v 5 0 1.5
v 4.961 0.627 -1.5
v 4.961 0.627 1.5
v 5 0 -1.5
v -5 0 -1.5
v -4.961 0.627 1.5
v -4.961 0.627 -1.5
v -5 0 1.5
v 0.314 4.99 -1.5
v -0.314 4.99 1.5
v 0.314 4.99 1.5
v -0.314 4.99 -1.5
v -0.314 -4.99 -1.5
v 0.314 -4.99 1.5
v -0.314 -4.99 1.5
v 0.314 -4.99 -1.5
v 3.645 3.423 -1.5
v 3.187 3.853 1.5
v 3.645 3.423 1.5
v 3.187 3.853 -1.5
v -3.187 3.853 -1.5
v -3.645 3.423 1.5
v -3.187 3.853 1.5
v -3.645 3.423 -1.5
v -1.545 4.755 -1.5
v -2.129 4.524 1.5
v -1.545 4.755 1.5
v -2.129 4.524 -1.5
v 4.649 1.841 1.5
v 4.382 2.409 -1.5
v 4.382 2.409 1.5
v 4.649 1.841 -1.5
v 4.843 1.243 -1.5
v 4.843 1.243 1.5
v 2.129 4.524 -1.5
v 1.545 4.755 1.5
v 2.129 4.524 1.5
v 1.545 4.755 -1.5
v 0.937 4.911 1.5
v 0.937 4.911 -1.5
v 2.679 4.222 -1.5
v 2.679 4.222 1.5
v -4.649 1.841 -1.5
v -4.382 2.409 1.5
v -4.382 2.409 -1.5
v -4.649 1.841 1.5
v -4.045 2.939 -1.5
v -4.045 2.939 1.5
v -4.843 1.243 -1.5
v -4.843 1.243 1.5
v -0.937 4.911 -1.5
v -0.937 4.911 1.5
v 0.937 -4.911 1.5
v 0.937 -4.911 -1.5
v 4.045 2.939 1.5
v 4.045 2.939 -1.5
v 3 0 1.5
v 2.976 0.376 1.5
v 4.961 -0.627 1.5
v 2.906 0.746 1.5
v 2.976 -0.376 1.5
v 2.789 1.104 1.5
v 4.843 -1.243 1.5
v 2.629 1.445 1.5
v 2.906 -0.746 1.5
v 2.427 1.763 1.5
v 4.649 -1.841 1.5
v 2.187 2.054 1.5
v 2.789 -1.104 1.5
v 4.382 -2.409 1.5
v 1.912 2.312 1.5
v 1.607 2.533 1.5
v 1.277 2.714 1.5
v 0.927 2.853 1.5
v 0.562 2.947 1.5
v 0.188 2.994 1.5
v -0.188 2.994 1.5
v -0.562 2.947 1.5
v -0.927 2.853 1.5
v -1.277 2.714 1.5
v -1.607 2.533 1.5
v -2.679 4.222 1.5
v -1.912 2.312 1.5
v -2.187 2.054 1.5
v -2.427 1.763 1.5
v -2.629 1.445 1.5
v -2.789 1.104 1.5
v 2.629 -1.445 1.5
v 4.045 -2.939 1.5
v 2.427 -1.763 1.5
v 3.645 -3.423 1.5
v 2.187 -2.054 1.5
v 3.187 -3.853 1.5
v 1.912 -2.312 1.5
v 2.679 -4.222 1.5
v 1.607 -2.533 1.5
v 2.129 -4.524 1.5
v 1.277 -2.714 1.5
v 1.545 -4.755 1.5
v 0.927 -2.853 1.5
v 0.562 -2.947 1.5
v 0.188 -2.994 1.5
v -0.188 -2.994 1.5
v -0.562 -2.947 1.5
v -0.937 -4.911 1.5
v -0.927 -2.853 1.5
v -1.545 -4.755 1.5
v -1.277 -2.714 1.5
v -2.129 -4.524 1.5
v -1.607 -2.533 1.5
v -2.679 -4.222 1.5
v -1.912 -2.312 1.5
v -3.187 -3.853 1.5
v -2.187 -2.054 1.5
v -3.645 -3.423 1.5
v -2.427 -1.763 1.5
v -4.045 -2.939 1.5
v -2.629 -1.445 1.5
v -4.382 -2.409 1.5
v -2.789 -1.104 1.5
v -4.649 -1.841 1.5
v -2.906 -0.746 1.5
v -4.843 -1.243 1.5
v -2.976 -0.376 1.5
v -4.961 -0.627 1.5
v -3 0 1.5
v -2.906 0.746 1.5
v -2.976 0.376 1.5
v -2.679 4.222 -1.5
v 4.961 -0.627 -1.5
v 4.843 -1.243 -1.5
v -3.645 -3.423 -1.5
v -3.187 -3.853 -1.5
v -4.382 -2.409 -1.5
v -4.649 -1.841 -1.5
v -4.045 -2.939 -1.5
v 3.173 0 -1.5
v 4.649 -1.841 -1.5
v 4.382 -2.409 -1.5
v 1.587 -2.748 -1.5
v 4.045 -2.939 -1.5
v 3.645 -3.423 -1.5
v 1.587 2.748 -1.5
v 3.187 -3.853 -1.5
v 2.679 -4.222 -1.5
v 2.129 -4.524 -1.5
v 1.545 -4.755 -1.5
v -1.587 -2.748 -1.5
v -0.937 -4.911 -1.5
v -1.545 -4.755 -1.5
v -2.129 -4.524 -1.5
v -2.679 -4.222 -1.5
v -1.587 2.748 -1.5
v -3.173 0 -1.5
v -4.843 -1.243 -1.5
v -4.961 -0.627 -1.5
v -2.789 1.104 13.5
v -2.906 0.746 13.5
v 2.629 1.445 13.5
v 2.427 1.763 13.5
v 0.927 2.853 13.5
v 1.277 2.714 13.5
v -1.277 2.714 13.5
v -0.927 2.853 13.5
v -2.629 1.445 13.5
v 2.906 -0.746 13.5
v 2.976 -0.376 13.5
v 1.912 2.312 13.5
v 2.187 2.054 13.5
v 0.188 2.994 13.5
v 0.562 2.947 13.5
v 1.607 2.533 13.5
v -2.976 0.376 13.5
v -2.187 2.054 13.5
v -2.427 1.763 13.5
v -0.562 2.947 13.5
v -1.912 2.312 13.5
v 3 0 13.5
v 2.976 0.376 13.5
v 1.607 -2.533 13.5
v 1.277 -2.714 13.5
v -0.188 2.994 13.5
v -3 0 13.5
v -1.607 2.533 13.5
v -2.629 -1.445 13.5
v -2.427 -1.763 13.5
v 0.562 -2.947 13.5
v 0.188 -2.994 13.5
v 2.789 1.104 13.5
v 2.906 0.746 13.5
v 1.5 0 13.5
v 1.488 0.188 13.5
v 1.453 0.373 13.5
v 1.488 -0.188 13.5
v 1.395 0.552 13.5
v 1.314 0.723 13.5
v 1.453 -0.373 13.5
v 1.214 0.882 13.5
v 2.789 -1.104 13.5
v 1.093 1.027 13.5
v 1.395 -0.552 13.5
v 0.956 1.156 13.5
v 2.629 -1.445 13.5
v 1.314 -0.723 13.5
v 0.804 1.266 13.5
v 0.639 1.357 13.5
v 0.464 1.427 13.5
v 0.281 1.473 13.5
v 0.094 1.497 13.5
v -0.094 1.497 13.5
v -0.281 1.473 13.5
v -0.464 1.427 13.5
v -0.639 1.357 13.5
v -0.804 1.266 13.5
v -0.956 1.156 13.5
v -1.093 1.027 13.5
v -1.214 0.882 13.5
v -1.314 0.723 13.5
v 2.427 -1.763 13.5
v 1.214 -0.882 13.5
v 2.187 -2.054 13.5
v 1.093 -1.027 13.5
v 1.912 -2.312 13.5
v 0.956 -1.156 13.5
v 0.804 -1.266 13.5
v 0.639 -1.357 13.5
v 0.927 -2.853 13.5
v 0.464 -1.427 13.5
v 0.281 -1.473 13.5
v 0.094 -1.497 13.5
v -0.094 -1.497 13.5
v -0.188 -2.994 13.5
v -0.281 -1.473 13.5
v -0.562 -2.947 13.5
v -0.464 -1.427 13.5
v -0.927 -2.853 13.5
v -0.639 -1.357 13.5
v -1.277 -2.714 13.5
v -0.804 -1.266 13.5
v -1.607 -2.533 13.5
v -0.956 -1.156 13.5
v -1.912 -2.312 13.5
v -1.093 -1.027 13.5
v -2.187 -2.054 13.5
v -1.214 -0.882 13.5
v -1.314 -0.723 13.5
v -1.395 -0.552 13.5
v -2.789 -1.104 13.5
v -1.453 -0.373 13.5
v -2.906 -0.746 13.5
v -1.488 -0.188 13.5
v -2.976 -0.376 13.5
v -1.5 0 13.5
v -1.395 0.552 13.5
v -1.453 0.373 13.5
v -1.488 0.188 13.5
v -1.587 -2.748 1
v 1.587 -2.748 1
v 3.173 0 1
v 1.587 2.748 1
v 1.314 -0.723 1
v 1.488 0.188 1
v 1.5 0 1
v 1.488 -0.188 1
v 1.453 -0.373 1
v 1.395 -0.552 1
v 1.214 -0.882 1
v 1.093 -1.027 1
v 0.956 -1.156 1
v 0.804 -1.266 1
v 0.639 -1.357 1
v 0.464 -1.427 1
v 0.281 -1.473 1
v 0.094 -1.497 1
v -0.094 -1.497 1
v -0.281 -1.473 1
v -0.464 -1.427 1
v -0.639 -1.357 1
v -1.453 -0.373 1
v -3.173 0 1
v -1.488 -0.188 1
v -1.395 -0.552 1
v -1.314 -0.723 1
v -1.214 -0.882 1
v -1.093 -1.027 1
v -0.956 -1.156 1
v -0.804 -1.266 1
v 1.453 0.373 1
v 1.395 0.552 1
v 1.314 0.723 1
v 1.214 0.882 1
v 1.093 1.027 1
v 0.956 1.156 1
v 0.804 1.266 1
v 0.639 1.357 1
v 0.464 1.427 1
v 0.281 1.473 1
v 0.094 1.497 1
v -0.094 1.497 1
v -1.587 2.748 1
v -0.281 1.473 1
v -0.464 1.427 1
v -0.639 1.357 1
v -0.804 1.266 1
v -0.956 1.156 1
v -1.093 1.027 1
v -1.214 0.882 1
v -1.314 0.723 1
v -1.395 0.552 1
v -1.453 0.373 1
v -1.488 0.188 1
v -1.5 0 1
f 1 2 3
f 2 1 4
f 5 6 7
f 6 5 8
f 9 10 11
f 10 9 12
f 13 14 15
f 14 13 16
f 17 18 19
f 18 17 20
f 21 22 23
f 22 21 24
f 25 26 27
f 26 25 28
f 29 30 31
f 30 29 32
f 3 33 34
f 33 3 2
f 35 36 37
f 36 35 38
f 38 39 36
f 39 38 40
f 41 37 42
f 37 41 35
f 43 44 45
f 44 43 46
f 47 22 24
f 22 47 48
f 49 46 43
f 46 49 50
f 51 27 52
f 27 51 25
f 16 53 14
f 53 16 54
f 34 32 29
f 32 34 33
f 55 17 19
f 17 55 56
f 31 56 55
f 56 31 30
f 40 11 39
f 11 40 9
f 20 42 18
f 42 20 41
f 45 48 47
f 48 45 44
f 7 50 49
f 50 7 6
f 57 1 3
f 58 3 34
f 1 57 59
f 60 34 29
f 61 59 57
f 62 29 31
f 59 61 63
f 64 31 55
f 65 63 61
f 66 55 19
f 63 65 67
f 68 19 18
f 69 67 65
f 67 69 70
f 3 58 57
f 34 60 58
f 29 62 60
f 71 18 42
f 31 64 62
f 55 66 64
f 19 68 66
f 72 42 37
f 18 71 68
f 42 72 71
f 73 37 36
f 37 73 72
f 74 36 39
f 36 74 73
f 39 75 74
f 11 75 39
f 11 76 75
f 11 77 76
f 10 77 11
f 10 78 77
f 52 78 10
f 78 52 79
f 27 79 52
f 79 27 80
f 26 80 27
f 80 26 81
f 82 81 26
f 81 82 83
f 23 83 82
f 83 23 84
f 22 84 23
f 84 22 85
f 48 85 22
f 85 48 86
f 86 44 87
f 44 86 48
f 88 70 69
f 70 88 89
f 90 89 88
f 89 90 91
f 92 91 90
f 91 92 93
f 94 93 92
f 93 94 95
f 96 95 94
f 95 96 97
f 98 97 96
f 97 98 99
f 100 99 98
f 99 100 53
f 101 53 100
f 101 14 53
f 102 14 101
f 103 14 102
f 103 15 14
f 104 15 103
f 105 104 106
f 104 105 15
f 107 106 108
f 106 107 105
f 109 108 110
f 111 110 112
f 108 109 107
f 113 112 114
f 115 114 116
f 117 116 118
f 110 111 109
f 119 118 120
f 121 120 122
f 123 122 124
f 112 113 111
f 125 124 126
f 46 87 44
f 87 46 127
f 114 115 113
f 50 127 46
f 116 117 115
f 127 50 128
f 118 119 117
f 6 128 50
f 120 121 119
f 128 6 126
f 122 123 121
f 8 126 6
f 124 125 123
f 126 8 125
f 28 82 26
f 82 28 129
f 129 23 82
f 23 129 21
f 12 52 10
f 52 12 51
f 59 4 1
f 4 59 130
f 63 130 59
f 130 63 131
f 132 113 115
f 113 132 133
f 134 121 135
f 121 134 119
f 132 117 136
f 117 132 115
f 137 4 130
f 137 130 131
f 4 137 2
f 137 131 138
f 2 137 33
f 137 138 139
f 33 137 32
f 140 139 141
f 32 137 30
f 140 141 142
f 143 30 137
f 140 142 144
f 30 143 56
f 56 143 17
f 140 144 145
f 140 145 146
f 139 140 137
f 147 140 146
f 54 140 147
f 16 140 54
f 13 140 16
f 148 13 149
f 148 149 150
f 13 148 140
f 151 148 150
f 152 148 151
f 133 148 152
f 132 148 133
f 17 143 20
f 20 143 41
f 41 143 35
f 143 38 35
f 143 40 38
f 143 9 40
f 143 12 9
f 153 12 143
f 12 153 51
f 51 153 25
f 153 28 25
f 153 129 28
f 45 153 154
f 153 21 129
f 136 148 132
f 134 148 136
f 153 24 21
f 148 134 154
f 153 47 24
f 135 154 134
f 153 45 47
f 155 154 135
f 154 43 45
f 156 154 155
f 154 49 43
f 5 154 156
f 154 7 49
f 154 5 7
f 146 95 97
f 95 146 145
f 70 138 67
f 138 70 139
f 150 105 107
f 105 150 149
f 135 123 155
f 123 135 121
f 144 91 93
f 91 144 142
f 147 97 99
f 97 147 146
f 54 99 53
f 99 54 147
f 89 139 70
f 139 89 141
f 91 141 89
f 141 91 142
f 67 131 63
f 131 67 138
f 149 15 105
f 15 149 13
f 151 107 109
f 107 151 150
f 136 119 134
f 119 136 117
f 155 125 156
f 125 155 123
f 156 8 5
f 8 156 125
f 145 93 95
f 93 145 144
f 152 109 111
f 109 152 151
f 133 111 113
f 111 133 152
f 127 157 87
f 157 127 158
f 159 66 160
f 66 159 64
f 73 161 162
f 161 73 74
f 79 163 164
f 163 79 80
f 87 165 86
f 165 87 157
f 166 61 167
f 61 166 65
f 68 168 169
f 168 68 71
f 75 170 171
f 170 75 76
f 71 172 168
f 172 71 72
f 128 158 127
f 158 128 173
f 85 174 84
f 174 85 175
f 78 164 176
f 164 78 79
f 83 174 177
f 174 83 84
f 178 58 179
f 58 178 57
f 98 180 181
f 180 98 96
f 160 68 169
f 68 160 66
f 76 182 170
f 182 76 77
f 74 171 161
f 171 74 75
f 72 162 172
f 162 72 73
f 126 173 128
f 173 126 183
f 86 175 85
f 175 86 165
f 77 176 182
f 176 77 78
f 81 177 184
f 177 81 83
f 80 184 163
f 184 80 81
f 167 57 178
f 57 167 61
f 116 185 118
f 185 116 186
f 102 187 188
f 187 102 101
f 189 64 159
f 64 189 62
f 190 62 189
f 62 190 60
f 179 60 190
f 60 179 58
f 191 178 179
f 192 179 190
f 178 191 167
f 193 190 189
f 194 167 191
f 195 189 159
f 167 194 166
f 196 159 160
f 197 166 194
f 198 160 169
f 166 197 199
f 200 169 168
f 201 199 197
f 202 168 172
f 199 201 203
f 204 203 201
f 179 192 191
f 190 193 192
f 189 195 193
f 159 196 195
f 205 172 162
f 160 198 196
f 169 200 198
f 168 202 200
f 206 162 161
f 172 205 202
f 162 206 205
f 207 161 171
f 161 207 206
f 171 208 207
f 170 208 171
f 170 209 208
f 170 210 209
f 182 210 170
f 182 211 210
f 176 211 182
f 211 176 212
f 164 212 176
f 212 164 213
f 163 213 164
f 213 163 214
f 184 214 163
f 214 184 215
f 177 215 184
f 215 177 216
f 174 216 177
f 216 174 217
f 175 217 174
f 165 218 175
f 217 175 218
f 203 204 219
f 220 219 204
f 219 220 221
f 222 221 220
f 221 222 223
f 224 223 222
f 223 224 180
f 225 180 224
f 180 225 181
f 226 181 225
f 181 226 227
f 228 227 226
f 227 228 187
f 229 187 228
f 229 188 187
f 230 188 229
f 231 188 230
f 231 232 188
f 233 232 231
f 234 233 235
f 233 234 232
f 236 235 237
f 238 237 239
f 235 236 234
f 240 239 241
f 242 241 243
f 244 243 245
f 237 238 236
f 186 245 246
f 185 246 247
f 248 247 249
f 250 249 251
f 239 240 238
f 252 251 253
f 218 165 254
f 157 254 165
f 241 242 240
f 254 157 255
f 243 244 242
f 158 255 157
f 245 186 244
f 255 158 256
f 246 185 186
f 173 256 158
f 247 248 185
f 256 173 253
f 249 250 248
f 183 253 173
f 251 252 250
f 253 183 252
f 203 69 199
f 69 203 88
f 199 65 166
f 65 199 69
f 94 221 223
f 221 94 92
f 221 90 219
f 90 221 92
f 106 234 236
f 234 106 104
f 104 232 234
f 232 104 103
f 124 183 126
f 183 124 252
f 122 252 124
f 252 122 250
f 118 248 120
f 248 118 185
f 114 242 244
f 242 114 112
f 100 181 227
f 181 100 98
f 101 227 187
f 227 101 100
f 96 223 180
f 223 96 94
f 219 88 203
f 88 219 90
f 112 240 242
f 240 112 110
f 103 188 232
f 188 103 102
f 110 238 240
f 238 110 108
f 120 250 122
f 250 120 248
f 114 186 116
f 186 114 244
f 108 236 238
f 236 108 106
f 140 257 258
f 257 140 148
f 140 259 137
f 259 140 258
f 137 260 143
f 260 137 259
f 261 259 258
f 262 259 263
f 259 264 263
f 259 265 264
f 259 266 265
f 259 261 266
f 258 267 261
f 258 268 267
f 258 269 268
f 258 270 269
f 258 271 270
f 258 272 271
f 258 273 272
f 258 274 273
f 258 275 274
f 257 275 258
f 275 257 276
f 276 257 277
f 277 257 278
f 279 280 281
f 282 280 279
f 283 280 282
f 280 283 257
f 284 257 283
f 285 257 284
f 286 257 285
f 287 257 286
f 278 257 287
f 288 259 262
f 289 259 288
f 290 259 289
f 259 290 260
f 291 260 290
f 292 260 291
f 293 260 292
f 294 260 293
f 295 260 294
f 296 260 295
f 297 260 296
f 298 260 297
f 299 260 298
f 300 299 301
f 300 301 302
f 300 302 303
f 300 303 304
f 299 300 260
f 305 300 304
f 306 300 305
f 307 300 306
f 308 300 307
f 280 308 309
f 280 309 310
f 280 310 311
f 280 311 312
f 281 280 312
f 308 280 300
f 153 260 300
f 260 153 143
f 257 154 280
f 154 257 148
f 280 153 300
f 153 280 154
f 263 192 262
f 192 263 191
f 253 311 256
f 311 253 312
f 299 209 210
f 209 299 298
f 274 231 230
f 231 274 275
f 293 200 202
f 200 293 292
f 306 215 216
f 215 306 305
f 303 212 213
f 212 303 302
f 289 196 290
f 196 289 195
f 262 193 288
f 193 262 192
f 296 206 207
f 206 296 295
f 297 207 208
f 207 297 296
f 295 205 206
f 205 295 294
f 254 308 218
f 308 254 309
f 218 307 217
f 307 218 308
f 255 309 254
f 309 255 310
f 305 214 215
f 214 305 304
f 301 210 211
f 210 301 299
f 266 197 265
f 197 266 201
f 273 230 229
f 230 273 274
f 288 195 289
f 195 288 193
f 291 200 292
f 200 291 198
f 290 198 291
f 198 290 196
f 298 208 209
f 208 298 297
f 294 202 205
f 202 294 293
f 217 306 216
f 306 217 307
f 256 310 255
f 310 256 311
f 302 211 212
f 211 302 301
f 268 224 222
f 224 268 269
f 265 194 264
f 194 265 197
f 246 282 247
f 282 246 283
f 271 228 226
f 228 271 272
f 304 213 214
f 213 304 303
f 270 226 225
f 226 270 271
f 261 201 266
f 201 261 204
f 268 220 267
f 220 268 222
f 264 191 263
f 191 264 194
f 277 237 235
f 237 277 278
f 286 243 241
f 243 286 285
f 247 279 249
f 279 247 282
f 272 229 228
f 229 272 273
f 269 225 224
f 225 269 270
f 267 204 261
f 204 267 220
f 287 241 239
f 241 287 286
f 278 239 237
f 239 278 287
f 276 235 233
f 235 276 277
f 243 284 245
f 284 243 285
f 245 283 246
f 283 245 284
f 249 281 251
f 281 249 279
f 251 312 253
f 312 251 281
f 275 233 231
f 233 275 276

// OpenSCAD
$fn = 50;


difference() {
	union() {
		translate(v = [0, 0, -1.5000000000]) {
			cylinder(h = 3, r = 5.0000000000);
		}
		translate(v = [0, 0, -1.5000000000]) {
			cylinder(h = 15, r = 3.0000000000);
		}
	}
	union() {
		translate(v = [0, 0, -1.5000000000]) {
			rotate(a = [0, 0, 0]) {
				difference() {
					union() {
						linear_extrude(height = 2.5000000000) {
							polygon(points = [[3.1735000000, 0.0000000000], [1.5867500000, 2.7483316189], [-1.5867500000, 2.7483316189], [-3.1735000000, 0.0000000000], [-1.5867500000, -2.7483316189], [1.5867500000, -2.7483316189]]);
						}
					}
					union();
				}
			}
		}
		translate(v = [0, 0, -100.0000000000]) {
			cylinder(h = 200, r = 1.5000000000);
		}
	}
}
